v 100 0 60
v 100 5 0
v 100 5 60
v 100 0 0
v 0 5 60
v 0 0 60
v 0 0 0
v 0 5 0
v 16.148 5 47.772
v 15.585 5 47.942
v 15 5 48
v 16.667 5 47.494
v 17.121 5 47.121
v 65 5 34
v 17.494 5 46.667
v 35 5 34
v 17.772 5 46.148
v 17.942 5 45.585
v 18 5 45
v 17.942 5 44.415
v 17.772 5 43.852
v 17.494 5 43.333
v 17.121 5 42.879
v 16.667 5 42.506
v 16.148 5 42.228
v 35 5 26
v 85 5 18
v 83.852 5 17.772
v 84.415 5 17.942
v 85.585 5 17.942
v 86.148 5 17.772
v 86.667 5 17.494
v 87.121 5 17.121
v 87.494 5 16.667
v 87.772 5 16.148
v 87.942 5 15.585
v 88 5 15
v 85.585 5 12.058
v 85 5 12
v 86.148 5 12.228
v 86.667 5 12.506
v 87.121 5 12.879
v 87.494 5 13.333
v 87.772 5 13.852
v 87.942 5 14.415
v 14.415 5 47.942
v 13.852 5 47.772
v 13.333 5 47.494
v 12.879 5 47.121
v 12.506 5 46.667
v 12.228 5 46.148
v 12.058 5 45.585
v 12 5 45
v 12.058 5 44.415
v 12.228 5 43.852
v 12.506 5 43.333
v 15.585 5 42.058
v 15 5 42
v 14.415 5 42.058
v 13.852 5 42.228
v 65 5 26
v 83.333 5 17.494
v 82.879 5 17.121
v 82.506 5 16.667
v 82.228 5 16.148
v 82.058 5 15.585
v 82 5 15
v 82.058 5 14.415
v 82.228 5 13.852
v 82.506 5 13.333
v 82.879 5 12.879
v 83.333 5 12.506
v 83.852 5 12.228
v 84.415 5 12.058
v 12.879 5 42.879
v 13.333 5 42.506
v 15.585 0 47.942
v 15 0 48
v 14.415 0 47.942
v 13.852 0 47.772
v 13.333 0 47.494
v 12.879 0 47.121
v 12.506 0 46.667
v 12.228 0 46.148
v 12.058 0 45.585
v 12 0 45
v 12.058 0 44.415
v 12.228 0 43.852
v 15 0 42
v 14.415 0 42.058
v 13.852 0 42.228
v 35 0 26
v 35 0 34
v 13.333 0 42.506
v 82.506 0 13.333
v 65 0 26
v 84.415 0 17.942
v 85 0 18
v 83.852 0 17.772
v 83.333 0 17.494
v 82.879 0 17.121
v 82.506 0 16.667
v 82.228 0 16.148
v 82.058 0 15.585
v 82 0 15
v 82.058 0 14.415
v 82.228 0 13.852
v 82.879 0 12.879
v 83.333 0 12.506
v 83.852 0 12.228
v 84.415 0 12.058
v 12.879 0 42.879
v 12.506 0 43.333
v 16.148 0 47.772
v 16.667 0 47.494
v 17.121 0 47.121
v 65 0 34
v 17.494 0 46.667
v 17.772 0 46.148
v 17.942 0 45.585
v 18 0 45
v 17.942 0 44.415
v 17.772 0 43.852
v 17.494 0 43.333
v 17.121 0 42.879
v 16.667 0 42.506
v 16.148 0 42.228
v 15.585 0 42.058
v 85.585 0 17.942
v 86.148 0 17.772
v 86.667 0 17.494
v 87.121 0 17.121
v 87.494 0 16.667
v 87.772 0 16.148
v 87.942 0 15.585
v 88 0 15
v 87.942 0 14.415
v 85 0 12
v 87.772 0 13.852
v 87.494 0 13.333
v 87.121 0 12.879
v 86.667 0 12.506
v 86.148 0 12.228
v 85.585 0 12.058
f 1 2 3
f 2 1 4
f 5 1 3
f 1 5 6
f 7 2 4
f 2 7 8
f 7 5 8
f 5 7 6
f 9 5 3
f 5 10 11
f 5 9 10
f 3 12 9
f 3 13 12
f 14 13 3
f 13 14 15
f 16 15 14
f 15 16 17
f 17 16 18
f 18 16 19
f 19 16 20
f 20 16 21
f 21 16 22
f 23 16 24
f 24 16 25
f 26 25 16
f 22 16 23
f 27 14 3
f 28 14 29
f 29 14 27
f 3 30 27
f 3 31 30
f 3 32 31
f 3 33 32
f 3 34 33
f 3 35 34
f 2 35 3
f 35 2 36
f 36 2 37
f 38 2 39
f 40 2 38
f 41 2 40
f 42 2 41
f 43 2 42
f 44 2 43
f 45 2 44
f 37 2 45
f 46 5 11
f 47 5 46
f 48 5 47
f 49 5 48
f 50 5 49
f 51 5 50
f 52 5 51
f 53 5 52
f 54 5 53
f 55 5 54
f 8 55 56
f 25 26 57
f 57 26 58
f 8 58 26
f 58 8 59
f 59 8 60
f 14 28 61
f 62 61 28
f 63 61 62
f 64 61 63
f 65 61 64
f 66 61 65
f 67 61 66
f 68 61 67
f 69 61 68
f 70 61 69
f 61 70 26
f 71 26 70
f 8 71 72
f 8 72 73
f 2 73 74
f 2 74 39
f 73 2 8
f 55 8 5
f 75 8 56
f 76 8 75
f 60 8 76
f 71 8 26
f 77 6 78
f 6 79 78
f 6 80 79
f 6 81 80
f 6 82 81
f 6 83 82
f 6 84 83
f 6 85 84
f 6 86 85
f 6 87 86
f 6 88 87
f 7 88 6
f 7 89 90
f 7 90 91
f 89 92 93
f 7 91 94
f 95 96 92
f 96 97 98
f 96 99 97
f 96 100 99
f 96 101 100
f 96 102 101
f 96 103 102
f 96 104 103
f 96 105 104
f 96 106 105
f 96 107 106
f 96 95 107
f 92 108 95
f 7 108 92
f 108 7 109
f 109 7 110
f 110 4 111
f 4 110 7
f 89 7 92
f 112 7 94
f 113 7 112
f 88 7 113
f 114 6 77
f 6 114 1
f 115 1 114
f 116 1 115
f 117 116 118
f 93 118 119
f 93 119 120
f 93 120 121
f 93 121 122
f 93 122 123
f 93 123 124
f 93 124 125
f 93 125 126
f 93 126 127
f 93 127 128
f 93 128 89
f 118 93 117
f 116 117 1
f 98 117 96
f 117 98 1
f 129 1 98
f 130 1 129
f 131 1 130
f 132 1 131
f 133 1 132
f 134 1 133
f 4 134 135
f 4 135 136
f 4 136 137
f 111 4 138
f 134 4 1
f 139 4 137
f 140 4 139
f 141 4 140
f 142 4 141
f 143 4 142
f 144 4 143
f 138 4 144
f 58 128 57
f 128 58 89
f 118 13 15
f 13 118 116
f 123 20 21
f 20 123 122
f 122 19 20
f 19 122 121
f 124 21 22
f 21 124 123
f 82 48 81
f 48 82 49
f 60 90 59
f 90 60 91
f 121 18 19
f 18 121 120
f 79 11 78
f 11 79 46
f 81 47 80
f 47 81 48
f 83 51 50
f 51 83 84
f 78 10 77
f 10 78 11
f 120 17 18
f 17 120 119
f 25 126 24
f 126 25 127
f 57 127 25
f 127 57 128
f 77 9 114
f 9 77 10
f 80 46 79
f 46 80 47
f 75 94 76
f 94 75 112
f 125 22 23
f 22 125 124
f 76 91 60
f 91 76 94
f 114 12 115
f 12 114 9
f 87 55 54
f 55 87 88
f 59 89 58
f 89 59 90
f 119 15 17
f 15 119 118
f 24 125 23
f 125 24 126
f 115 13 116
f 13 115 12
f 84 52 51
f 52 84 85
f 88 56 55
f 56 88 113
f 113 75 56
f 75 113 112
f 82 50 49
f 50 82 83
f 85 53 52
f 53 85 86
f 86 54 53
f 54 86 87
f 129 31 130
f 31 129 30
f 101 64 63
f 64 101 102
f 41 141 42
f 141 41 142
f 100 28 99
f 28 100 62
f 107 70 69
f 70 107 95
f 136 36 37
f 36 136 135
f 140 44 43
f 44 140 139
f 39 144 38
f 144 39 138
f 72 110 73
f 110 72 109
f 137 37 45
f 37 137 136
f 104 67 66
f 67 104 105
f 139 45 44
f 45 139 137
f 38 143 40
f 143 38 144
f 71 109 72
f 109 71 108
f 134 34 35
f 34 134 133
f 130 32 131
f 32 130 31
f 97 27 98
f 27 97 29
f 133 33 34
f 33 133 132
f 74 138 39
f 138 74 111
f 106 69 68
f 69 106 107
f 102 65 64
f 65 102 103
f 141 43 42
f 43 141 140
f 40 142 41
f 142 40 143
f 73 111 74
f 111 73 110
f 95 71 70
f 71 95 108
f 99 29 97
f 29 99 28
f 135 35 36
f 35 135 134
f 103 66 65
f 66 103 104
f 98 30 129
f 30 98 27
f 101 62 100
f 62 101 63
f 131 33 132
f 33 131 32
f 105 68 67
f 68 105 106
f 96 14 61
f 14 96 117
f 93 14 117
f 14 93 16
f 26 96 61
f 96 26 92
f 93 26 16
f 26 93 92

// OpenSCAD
// Mounting plate: width 100 (X), thickness 5 (Y), height 60 (Z).
// Two d6 through-holes (axis Y) at (15,45) and (85,15); 30x8 slot centered.
difference() {
  cube([100,5,60]);
  translate([15,-1,45])  rotate([-90,0,0]) cylinder(d=6,h=7,$fn=32);
  translate([85,-1,15])  rotate([-90,0,0]) cylinder(d=6,h=7,$fn=32);
  translate([35,-1,26])  cube([30,7,8]);
}
